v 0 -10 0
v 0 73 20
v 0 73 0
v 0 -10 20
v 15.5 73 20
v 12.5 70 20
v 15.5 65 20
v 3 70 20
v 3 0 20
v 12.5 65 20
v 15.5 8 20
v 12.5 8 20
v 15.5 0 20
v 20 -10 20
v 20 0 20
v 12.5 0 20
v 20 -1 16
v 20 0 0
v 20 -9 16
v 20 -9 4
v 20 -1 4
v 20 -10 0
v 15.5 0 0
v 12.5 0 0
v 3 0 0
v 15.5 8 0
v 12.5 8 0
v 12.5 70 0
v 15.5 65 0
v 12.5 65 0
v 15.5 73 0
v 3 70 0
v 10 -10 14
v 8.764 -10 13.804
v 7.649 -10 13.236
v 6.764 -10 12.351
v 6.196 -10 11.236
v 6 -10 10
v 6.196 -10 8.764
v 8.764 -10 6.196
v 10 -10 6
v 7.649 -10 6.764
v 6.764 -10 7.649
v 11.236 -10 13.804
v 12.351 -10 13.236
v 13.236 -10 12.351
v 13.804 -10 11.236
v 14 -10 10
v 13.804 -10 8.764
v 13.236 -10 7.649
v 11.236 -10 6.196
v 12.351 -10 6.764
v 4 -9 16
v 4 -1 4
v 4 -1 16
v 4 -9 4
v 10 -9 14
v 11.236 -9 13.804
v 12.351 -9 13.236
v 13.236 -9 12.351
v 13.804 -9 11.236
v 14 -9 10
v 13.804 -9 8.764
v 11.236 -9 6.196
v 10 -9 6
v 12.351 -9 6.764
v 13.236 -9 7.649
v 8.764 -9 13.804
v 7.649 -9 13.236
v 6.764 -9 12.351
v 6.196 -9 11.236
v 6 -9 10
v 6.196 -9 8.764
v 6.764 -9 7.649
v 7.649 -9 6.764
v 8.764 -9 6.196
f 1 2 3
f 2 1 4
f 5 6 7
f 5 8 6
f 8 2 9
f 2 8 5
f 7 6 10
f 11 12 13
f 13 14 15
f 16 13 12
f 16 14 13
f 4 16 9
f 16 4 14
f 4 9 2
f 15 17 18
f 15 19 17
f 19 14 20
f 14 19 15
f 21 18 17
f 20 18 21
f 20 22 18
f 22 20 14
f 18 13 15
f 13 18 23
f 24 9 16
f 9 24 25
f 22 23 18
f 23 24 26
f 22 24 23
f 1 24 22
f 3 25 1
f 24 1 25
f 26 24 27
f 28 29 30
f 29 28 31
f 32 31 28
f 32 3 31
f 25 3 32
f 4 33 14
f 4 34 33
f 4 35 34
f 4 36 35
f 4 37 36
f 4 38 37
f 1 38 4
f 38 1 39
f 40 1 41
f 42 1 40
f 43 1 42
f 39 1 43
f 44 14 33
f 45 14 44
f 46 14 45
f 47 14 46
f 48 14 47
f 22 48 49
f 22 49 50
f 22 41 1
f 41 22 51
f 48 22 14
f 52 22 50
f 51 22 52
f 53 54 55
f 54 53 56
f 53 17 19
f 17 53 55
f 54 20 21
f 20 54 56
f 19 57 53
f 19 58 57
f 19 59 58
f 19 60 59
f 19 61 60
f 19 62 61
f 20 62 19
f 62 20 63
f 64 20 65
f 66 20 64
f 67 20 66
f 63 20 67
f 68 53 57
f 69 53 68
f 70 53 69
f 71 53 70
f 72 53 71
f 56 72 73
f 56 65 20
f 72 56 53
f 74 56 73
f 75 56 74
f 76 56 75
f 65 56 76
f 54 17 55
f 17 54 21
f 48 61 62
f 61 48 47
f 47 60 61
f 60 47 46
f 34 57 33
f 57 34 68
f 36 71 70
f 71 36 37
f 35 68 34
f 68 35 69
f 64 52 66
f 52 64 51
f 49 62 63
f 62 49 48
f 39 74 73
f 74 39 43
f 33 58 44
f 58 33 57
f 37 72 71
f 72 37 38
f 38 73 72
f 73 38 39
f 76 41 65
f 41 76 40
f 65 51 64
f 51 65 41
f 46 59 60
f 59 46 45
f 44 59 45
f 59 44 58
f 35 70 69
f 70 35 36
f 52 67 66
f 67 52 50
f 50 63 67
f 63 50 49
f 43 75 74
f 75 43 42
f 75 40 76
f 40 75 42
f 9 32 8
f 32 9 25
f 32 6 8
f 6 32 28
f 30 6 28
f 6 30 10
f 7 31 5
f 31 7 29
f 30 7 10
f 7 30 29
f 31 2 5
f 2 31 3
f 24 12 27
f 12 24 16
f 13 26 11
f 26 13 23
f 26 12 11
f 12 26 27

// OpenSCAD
//-------------------------------------------------------------
// Edit these two variables, according to your phone
//-------------------------------------------------------------
phone_width = 70;
phone_depth = 9.5;

//-------------------------------------------------------------

suppport_height = 20;        

// The support base is a simple longe rectangle
translate([0,0,0])
cube ([3, phone_width, suppport_height]);

// upper winglet, to hold the phone
translate([phone_depth + 3, phone_width-5, 0])
cube ([3, 8, suppport_height]);

// lower winglet, to hold the phone
translate([phone_depth + 3, 0, 0])
cube ([3, 8, suppport_height]);

// the piece connecting the support base to the winglet
translate([0, phone_width, 0])
cube ([phone_depth + 3, 3, suppport_height]);

nut_holder(10, suppport_height);

module nut_holder(box_height, box_side)
{
    //draw the nut holder:
    // This is a box rotated 90deg around X
    translate([0, -box_height, 0]) {        
        nut_width = 12; /* measured xy when nut is on a table */
        nut_height = 8; /* measured z when nut is on a table */
            
        center = (box_side - nut_width) / 2;
        
        //translate([center, -3, center])
        //cube ([nut_width, 1, nut_width]);
        
        difference() {        
            // A box for the nut holder
            cube ([box_side, box_height, box_side]);
            
            // A rectangular hole, inside the box,
            // where we can put the nut
            translate([center, 1, center])
            cube ([box_side, nut_height, nut_width]);
            
            // A hole, thorugh that box, so we can insert the screw
            rotate([90, 0, 0])
            translate([box_side / 2, box_side / 2, -2])        
            cylinder(r1=4, r2=4, h=3, $fn=20);
        }
    }
}
